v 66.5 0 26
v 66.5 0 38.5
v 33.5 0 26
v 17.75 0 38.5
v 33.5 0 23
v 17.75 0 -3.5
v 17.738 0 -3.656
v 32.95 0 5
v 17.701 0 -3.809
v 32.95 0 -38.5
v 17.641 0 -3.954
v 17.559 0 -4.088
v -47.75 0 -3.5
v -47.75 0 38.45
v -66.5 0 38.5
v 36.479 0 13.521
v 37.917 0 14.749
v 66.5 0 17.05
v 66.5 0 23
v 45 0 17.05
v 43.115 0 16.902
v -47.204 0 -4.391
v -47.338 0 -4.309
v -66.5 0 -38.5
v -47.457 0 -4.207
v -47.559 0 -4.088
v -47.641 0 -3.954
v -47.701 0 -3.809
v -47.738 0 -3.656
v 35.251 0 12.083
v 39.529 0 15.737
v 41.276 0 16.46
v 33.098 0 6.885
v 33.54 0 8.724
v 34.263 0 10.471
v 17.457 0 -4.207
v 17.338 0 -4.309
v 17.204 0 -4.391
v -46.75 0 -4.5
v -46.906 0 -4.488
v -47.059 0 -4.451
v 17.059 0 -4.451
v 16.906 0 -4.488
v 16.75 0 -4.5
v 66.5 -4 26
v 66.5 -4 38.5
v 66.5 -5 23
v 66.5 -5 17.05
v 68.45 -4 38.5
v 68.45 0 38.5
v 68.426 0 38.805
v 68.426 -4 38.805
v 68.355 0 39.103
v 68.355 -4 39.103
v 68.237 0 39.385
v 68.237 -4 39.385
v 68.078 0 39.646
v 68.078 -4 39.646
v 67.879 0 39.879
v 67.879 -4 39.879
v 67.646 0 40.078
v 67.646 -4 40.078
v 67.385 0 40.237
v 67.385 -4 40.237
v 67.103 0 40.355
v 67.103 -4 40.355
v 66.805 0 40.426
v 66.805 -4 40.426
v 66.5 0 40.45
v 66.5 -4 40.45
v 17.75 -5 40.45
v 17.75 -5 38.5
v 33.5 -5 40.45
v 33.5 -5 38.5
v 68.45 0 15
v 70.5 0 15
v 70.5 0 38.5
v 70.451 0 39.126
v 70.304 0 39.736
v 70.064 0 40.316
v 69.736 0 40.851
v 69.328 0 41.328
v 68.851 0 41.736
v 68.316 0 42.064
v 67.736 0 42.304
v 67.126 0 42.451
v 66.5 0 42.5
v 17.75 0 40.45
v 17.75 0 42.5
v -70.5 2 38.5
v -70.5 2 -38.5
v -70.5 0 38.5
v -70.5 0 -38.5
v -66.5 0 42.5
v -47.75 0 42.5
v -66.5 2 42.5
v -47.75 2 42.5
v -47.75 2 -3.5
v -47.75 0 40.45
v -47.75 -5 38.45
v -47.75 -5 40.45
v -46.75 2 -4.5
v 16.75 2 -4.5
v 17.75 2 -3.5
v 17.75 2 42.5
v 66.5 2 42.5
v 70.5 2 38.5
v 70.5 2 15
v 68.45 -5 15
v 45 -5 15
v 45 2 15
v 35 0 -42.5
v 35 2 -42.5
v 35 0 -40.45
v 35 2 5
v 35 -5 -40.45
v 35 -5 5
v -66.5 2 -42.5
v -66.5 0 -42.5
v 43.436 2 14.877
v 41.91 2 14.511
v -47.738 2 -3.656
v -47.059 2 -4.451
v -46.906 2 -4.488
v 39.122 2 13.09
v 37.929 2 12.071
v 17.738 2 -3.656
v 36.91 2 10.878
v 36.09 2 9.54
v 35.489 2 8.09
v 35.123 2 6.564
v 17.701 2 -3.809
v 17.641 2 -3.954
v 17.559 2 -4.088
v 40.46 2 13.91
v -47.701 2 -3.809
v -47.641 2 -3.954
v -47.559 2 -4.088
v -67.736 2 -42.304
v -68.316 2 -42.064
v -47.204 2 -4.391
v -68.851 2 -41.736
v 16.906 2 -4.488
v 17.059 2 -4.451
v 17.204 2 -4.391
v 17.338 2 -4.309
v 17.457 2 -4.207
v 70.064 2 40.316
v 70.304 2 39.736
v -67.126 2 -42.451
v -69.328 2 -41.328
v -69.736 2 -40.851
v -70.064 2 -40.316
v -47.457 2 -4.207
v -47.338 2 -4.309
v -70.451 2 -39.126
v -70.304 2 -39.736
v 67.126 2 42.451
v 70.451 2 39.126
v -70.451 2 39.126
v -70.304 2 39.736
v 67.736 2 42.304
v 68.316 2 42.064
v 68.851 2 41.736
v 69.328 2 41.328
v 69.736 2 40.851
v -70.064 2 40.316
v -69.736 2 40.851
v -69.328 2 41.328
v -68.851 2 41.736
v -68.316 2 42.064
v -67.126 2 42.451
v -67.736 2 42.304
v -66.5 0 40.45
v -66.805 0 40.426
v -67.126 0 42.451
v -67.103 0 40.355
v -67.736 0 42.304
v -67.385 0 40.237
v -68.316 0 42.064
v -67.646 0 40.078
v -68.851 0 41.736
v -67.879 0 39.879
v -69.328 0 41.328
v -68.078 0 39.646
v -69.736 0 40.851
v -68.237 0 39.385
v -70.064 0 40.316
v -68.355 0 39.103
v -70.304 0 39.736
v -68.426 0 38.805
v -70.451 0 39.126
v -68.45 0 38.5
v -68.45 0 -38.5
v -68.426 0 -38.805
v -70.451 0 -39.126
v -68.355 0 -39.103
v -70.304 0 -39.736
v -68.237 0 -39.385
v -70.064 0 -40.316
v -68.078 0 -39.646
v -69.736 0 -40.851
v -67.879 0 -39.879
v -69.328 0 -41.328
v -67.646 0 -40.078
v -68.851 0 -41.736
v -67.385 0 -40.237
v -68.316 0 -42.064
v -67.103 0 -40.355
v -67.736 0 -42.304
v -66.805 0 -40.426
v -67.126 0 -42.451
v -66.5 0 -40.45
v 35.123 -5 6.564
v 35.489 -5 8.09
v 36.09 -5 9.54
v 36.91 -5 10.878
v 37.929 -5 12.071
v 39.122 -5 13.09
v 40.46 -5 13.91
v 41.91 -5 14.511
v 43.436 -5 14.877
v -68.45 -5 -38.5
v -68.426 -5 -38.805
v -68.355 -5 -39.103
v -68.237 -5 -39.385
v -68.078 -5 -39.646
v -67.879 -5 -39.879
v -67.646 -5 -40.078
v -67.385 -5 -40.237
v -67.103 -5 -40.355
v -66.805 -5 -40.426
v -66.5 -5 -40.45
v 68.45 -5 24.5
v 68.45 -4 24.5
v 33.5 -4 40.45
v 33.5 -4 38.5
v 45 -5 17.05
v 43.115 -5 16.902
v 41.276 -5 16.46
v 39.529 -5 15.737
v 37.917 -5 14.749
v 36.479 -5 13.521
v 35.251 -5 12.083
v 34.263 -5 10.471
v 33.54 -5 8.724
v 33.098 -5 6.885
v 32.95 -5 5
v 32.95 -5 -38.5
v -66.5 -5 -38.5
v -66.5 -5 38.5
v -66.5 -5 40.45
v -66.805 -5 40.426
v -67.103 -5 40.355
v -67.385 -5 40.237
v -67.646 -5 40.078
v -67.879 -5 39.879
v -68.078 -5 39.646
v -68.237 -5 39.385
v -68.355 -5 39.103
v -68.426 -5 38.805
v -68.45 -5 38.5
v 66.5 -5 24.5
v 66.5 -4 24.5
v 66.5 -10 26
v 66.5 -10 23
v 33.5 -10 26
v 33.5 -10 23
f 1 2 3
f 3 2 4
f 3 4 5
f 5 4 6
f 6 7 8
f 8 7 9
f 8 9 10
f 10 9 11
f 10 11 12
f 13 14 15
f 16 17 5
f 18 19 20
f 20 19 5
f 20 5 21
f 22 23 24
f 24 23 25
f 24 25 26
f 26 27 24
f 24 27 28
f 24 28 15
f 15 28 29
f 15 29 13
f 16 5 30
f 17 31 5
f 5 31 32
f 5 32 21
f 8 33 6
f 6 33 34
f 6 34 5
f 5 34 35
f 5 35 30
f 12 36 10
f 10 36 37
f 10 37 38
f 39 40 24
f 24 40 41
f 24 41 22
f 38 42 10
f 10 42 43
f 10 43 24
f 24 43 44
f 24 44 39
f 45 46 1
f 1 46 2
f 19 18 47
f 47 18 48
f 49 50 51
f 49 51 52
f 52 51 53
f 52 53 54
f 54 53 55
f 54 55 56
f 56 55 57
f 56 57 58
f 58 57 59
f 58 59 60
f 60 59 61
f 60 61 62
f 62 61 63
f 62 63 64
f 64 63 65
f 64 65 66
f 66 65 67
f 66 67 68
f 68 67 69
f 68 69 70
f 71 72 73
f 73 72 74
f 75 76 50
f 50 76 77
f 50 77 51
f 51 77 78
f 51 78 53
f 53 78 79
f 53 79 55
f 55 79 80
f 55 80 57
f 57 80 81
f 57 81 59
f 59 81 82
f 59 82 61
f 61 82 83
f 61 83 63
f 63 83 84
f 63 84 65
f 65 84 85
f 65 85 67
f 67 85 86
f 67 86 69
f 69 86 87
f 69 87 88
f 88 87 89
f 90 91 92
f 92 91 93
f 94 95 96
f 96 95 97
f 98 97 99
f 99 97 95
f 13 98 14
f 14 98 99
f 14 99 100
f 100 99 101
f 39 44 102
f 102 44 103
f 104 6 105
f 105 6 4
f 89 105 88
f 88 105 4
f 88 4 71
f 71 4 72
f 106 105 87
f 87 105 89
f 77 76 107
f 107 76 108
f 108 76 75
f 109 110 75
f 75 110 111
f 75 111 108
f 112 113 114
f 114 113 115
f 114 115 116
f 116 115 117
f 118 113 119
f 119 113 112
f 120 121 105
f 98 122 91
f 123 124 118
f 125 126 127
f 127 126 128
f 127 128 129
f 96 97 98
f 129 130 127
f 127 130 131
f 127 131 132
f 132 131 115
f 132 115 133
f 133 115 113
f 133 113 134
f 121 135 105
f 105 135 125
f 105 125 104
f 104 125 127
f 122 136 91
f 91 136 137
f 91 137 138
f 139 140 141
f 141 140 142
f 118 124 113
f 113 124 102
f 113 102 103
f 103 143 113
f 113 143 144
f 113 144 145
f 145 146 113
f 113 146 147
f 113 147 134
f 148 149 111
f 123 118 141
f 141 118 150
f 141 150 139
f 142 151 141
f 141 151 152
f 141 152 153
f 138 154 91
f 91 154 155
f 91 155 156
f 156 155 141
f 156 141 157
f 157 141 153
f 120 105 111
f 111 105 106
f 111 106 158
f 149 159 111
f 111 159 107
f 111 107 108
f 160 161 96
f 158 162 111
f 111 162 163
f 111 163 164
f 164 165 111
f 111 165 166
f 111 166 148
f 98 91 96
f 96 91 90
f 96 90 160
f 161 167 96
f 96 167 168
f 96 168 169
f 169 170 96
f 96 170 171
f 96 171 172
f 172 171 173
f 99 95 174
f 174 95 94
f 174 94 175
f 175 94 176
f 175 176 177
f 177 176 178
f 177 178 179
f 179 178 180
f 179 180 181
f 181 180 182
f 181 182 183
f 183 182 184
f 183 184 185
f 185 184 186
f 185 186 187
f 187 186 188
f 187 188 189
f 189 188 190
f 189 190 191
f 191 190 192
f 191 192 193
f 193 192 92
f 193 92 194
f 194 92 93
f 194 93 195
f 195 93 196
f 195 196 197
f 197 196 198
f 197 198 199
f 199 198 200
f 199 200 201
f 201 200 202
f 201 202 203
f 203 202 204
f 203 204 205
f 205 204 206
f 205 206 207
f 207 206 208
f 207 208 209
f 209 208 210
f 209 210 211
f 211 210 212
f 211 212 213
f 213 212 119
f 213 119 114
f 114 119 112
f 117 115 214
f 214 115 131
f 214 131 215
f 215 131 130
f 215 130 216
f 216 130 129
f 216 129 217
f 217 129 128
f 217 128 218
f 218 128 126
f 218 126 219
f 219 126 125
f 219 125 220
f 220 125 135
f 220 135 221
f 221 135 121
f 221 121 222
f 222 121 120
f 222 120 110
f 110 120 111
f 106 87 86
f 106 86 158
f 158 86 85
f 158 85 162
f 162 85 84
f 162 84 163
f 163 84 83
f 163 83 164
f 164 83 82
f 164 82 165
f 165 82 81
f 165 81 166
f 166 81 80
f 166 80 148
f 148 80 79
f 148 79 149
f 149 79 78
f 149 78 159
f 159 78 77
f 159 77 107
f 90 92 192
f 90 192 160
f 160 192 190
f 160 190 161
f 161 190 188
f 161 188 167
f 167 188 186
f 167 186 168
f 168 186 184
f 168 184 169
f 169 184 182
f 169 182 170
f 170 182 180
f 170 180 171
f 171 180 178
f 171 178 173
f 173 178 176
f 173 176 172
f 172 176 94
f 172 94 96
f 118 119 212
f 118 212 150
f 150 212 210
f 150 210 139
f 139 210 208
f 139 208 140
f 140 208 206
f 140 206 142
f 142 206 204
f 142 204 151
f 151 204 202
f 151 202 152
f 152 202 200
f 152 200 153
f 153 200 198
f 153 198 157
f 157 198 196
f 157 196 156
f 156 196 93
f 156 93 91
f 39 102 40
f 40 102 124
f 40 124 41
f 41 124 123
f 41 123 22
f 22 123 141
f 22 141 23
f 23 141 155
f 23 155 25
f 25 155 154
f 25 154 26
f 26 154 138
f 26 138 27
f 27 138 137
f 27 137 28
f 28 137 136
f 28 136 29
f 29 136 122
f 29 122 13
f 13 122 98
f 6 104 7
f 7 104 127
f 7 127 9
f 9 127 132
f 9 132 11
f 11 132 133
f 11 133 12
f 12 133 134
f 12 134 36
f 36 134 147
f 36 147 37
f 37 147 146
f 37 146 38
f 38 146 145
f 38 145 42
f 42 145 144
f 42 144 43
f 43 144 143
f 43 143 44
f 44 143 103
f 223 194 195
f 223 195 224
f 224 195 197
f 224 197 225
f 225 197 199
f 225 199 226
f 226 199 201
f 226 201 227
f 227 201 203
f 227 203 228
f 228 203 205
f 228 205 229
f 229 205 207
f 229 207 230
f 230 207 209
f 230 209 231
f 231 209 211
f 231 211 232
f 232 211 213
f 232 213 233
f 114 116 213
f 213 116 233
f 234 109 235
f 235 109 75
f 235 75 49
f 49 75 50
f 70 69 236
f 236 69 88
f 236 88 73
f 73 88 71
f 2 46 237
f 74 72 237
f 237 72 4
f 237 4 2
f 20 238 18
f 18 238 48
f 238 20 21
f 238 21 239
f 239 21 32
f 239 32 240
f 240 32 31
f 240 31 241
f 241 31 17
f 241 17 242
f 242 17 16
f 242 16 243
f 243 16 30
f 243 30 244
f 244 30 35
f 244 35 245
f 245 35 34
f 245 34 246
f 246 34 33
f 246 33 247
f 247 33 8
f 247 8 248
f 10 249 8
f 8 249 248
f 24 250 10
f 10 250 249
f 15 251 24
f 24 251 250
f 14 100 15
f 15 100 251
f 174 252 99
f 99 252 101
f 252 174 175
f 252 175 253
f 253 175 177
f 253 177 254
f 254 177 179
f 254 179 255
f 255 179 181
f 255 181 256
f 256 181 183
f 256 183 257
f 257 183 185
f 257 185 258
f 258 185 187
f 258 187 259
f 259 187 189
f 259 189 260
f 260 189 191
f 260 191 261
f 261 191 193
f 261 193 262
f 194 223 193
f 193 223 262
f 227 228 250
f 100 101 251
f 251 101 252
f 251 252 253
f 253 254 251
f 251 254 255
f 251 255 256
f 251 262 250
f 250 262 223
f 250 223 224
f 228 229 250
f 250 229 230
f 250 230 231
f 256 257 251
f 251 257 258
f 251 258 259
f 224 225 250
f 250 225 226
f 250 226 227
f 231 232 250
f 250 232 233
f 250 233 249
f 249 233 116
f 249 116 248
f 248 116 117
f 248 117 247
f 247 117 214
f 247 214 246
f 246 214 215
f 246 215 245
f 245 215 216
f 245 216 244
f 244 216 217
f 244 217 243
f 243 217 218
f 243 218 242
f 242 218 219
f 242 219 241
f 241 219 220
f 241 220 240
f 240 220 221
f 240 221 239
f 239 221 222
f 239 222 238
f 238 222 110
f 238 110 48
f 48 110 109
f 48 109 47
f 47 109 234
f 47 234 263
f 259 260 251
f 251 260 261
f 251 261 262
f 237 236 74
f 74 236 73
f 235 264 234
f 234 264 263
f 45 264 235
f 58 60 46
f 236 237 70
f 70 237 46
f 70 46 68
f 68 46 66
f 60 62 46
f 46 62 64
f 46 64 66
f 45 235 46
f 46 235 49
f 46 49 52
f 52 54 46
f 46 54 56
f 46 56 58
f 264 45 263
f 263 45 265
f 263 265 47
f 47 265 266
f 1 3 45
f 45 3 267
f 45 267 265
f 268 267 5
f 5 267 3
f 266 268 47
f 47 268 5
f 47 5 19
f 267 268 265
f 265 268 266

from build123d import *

# Parameters (mm, degrees)
BOSS_EXTRU_1_DEPTH      = 2
CONG_1_R                = 10
CONG_3_R                = 4
CONG_4_R                = 1
BOSS_EXTRU_2_DEPTH      = 7
ENL_V_START             = -1
ENL_V_MAT_EXTRU_1_DEPTH = 1
ESQUISSE6_W             = 33
ESQUISSE6_H             = 3
BOSS_EXTRU_3_DEPTH      = 10


with BuildPart() as part:
    # Esquisse1 → Boss.-Extru.1 (new body)
    with BuildSketch(Plane(origin=(0, 0, 0), x_dir=(1, 0, 0), z_dir=(0, 1, 0))):
        Polygon((-70.5, 42.5), (-47.5, 42.5), (18, 42.5), (35, 42.5), (35, -15), (70.5, -15), (70.5, -42.5), (17.75, -42.5), (17.75, 4.5), (-47.75, 4.5), (-47.75, -42.5), (-70.5, -42.5), align=None)
    extrude(amount=BOSS_EXTRU_1_DEPTH)

    # Congé1
    cong_1_edges = [part.edges().sort_by_distance(p)[0] for p in [
        (35, 1, 15),
    ]]
    fillet(cong_1_edges, radius=CONG_1_R)

    # Congé3
    cong_3_edges = [part.edges().sort_by_distance(p)[0] for p in [
        (-70.5, 1, -42.5),
        (70.5, 1, 42.5),
        (-70.5, 1, 42.5),
    ]]
    fillet(cong_3_edges, radius=CONG_3_R)

    # Congé4
    cong_4_edges = [part.edges().sort_by_distance(p)[0] for p in [
        (17.75, 1, -4.5),
        (-47.75, 1, -4.5),
    ]]
    fillet(cong_4_edges, radius=CONG_4_R)

    # Esquisse3 → Boss.-Extru.2 (add)
    with BuildSketch(Plane(origin=(0, 2, 0), x_dir=(1, 0, 0), z_dir=(0, 1, 0))):
        with BuildLine():
            Line((-68.45, 38.5), (-68.45, -38.5))
            ThreePointArc((-68.45, -38.5), (-67.878858223, -39.878858223), (-66.5, -40.45))
            Line((-66.5, -40.45), (-47.75, -40.45))
            Line((-47.75, -40.45), (-47.75, -38.45))
            Line((-47.75, -38.45), (-66.5, -38.5))
            Line((-66.5, -38.5), (-66.5, 38.5))
            Line((-66.5, 38.5), (32.95, 38.5))
            Line((32.95, 38.5), (32.95, -5))
            ThreePointArc((32.95, -5), (36.479363287, -13.520636713), (45, -17.05))
            Line((45, -17.05), (66.5, -17.05))
            Line((66.5, -17.05), (66.5, -38.5))
            Line((66.5, -38.5), (17.75, -38.5))
            Line((17.75, -38.5), (17.75, -40.45))
            Line((17.75, -40.45), (66.5, -40.45))
            ThreePointArc((66.5, -40.45), (67.878858223, -39.878858223), (68.45, -38.5))
            Line((68.45, -38.5), (68.45, -15))
            Line((68.45, -15), (45, -15))
            ThreePointArc((45, -15), (37.928932188, -12.071067812), (35, -5))
            Line((35, -5), (35, 40.45))
            Line((35, 40.45), (-66.5, 40.45))
            ThreePointArc((-66.5, 40.45), (-67.878858223, 39.878858223), (-68.45, 38.5))
        make_face()
    extrude(amount=-BOSS_EXTRU_2_DEPTH)

    # Esquisse5 → Enlèv. mat.-Extru.1 (cut)
    with BuildSketch(Plane.XZ.offset(5).offset(ENL_V_START)):
        with BuildLine():
            Line((66.5, 40.45), (33.5, 40.45))
            Line((33.5, 40.45), (33.5, 38.5))
            Line((33.5, 38.5), (66.5, 38.5))
            Line((66.5, 38.5), (66.5, 24.5))
            Line((66.5, 24.5), (68.45, 24.5))
            Line((68.45, 24.5), (68.45, 38.5))
            ThreePointArc((68.45, 38.5), (67.878858223, 39.878858223), (66.5, 40.45))
        make_face()
    extrude(amount=ENL_V_MAT_EXTRU_1_DEPTH, mode=Mode.SUBTRACT)

    # Esquisse6 → Boss.-Extru.3 (add)
    with BuildSketch(Plane.XZ):
        with Locations((50, 24.5)):
            Rectangle(ESQUISSE6_W, ESQUISSE6_H)
    extrude(amount=BOSS_EXTRU_3_DEPTH)


solid = part.part
